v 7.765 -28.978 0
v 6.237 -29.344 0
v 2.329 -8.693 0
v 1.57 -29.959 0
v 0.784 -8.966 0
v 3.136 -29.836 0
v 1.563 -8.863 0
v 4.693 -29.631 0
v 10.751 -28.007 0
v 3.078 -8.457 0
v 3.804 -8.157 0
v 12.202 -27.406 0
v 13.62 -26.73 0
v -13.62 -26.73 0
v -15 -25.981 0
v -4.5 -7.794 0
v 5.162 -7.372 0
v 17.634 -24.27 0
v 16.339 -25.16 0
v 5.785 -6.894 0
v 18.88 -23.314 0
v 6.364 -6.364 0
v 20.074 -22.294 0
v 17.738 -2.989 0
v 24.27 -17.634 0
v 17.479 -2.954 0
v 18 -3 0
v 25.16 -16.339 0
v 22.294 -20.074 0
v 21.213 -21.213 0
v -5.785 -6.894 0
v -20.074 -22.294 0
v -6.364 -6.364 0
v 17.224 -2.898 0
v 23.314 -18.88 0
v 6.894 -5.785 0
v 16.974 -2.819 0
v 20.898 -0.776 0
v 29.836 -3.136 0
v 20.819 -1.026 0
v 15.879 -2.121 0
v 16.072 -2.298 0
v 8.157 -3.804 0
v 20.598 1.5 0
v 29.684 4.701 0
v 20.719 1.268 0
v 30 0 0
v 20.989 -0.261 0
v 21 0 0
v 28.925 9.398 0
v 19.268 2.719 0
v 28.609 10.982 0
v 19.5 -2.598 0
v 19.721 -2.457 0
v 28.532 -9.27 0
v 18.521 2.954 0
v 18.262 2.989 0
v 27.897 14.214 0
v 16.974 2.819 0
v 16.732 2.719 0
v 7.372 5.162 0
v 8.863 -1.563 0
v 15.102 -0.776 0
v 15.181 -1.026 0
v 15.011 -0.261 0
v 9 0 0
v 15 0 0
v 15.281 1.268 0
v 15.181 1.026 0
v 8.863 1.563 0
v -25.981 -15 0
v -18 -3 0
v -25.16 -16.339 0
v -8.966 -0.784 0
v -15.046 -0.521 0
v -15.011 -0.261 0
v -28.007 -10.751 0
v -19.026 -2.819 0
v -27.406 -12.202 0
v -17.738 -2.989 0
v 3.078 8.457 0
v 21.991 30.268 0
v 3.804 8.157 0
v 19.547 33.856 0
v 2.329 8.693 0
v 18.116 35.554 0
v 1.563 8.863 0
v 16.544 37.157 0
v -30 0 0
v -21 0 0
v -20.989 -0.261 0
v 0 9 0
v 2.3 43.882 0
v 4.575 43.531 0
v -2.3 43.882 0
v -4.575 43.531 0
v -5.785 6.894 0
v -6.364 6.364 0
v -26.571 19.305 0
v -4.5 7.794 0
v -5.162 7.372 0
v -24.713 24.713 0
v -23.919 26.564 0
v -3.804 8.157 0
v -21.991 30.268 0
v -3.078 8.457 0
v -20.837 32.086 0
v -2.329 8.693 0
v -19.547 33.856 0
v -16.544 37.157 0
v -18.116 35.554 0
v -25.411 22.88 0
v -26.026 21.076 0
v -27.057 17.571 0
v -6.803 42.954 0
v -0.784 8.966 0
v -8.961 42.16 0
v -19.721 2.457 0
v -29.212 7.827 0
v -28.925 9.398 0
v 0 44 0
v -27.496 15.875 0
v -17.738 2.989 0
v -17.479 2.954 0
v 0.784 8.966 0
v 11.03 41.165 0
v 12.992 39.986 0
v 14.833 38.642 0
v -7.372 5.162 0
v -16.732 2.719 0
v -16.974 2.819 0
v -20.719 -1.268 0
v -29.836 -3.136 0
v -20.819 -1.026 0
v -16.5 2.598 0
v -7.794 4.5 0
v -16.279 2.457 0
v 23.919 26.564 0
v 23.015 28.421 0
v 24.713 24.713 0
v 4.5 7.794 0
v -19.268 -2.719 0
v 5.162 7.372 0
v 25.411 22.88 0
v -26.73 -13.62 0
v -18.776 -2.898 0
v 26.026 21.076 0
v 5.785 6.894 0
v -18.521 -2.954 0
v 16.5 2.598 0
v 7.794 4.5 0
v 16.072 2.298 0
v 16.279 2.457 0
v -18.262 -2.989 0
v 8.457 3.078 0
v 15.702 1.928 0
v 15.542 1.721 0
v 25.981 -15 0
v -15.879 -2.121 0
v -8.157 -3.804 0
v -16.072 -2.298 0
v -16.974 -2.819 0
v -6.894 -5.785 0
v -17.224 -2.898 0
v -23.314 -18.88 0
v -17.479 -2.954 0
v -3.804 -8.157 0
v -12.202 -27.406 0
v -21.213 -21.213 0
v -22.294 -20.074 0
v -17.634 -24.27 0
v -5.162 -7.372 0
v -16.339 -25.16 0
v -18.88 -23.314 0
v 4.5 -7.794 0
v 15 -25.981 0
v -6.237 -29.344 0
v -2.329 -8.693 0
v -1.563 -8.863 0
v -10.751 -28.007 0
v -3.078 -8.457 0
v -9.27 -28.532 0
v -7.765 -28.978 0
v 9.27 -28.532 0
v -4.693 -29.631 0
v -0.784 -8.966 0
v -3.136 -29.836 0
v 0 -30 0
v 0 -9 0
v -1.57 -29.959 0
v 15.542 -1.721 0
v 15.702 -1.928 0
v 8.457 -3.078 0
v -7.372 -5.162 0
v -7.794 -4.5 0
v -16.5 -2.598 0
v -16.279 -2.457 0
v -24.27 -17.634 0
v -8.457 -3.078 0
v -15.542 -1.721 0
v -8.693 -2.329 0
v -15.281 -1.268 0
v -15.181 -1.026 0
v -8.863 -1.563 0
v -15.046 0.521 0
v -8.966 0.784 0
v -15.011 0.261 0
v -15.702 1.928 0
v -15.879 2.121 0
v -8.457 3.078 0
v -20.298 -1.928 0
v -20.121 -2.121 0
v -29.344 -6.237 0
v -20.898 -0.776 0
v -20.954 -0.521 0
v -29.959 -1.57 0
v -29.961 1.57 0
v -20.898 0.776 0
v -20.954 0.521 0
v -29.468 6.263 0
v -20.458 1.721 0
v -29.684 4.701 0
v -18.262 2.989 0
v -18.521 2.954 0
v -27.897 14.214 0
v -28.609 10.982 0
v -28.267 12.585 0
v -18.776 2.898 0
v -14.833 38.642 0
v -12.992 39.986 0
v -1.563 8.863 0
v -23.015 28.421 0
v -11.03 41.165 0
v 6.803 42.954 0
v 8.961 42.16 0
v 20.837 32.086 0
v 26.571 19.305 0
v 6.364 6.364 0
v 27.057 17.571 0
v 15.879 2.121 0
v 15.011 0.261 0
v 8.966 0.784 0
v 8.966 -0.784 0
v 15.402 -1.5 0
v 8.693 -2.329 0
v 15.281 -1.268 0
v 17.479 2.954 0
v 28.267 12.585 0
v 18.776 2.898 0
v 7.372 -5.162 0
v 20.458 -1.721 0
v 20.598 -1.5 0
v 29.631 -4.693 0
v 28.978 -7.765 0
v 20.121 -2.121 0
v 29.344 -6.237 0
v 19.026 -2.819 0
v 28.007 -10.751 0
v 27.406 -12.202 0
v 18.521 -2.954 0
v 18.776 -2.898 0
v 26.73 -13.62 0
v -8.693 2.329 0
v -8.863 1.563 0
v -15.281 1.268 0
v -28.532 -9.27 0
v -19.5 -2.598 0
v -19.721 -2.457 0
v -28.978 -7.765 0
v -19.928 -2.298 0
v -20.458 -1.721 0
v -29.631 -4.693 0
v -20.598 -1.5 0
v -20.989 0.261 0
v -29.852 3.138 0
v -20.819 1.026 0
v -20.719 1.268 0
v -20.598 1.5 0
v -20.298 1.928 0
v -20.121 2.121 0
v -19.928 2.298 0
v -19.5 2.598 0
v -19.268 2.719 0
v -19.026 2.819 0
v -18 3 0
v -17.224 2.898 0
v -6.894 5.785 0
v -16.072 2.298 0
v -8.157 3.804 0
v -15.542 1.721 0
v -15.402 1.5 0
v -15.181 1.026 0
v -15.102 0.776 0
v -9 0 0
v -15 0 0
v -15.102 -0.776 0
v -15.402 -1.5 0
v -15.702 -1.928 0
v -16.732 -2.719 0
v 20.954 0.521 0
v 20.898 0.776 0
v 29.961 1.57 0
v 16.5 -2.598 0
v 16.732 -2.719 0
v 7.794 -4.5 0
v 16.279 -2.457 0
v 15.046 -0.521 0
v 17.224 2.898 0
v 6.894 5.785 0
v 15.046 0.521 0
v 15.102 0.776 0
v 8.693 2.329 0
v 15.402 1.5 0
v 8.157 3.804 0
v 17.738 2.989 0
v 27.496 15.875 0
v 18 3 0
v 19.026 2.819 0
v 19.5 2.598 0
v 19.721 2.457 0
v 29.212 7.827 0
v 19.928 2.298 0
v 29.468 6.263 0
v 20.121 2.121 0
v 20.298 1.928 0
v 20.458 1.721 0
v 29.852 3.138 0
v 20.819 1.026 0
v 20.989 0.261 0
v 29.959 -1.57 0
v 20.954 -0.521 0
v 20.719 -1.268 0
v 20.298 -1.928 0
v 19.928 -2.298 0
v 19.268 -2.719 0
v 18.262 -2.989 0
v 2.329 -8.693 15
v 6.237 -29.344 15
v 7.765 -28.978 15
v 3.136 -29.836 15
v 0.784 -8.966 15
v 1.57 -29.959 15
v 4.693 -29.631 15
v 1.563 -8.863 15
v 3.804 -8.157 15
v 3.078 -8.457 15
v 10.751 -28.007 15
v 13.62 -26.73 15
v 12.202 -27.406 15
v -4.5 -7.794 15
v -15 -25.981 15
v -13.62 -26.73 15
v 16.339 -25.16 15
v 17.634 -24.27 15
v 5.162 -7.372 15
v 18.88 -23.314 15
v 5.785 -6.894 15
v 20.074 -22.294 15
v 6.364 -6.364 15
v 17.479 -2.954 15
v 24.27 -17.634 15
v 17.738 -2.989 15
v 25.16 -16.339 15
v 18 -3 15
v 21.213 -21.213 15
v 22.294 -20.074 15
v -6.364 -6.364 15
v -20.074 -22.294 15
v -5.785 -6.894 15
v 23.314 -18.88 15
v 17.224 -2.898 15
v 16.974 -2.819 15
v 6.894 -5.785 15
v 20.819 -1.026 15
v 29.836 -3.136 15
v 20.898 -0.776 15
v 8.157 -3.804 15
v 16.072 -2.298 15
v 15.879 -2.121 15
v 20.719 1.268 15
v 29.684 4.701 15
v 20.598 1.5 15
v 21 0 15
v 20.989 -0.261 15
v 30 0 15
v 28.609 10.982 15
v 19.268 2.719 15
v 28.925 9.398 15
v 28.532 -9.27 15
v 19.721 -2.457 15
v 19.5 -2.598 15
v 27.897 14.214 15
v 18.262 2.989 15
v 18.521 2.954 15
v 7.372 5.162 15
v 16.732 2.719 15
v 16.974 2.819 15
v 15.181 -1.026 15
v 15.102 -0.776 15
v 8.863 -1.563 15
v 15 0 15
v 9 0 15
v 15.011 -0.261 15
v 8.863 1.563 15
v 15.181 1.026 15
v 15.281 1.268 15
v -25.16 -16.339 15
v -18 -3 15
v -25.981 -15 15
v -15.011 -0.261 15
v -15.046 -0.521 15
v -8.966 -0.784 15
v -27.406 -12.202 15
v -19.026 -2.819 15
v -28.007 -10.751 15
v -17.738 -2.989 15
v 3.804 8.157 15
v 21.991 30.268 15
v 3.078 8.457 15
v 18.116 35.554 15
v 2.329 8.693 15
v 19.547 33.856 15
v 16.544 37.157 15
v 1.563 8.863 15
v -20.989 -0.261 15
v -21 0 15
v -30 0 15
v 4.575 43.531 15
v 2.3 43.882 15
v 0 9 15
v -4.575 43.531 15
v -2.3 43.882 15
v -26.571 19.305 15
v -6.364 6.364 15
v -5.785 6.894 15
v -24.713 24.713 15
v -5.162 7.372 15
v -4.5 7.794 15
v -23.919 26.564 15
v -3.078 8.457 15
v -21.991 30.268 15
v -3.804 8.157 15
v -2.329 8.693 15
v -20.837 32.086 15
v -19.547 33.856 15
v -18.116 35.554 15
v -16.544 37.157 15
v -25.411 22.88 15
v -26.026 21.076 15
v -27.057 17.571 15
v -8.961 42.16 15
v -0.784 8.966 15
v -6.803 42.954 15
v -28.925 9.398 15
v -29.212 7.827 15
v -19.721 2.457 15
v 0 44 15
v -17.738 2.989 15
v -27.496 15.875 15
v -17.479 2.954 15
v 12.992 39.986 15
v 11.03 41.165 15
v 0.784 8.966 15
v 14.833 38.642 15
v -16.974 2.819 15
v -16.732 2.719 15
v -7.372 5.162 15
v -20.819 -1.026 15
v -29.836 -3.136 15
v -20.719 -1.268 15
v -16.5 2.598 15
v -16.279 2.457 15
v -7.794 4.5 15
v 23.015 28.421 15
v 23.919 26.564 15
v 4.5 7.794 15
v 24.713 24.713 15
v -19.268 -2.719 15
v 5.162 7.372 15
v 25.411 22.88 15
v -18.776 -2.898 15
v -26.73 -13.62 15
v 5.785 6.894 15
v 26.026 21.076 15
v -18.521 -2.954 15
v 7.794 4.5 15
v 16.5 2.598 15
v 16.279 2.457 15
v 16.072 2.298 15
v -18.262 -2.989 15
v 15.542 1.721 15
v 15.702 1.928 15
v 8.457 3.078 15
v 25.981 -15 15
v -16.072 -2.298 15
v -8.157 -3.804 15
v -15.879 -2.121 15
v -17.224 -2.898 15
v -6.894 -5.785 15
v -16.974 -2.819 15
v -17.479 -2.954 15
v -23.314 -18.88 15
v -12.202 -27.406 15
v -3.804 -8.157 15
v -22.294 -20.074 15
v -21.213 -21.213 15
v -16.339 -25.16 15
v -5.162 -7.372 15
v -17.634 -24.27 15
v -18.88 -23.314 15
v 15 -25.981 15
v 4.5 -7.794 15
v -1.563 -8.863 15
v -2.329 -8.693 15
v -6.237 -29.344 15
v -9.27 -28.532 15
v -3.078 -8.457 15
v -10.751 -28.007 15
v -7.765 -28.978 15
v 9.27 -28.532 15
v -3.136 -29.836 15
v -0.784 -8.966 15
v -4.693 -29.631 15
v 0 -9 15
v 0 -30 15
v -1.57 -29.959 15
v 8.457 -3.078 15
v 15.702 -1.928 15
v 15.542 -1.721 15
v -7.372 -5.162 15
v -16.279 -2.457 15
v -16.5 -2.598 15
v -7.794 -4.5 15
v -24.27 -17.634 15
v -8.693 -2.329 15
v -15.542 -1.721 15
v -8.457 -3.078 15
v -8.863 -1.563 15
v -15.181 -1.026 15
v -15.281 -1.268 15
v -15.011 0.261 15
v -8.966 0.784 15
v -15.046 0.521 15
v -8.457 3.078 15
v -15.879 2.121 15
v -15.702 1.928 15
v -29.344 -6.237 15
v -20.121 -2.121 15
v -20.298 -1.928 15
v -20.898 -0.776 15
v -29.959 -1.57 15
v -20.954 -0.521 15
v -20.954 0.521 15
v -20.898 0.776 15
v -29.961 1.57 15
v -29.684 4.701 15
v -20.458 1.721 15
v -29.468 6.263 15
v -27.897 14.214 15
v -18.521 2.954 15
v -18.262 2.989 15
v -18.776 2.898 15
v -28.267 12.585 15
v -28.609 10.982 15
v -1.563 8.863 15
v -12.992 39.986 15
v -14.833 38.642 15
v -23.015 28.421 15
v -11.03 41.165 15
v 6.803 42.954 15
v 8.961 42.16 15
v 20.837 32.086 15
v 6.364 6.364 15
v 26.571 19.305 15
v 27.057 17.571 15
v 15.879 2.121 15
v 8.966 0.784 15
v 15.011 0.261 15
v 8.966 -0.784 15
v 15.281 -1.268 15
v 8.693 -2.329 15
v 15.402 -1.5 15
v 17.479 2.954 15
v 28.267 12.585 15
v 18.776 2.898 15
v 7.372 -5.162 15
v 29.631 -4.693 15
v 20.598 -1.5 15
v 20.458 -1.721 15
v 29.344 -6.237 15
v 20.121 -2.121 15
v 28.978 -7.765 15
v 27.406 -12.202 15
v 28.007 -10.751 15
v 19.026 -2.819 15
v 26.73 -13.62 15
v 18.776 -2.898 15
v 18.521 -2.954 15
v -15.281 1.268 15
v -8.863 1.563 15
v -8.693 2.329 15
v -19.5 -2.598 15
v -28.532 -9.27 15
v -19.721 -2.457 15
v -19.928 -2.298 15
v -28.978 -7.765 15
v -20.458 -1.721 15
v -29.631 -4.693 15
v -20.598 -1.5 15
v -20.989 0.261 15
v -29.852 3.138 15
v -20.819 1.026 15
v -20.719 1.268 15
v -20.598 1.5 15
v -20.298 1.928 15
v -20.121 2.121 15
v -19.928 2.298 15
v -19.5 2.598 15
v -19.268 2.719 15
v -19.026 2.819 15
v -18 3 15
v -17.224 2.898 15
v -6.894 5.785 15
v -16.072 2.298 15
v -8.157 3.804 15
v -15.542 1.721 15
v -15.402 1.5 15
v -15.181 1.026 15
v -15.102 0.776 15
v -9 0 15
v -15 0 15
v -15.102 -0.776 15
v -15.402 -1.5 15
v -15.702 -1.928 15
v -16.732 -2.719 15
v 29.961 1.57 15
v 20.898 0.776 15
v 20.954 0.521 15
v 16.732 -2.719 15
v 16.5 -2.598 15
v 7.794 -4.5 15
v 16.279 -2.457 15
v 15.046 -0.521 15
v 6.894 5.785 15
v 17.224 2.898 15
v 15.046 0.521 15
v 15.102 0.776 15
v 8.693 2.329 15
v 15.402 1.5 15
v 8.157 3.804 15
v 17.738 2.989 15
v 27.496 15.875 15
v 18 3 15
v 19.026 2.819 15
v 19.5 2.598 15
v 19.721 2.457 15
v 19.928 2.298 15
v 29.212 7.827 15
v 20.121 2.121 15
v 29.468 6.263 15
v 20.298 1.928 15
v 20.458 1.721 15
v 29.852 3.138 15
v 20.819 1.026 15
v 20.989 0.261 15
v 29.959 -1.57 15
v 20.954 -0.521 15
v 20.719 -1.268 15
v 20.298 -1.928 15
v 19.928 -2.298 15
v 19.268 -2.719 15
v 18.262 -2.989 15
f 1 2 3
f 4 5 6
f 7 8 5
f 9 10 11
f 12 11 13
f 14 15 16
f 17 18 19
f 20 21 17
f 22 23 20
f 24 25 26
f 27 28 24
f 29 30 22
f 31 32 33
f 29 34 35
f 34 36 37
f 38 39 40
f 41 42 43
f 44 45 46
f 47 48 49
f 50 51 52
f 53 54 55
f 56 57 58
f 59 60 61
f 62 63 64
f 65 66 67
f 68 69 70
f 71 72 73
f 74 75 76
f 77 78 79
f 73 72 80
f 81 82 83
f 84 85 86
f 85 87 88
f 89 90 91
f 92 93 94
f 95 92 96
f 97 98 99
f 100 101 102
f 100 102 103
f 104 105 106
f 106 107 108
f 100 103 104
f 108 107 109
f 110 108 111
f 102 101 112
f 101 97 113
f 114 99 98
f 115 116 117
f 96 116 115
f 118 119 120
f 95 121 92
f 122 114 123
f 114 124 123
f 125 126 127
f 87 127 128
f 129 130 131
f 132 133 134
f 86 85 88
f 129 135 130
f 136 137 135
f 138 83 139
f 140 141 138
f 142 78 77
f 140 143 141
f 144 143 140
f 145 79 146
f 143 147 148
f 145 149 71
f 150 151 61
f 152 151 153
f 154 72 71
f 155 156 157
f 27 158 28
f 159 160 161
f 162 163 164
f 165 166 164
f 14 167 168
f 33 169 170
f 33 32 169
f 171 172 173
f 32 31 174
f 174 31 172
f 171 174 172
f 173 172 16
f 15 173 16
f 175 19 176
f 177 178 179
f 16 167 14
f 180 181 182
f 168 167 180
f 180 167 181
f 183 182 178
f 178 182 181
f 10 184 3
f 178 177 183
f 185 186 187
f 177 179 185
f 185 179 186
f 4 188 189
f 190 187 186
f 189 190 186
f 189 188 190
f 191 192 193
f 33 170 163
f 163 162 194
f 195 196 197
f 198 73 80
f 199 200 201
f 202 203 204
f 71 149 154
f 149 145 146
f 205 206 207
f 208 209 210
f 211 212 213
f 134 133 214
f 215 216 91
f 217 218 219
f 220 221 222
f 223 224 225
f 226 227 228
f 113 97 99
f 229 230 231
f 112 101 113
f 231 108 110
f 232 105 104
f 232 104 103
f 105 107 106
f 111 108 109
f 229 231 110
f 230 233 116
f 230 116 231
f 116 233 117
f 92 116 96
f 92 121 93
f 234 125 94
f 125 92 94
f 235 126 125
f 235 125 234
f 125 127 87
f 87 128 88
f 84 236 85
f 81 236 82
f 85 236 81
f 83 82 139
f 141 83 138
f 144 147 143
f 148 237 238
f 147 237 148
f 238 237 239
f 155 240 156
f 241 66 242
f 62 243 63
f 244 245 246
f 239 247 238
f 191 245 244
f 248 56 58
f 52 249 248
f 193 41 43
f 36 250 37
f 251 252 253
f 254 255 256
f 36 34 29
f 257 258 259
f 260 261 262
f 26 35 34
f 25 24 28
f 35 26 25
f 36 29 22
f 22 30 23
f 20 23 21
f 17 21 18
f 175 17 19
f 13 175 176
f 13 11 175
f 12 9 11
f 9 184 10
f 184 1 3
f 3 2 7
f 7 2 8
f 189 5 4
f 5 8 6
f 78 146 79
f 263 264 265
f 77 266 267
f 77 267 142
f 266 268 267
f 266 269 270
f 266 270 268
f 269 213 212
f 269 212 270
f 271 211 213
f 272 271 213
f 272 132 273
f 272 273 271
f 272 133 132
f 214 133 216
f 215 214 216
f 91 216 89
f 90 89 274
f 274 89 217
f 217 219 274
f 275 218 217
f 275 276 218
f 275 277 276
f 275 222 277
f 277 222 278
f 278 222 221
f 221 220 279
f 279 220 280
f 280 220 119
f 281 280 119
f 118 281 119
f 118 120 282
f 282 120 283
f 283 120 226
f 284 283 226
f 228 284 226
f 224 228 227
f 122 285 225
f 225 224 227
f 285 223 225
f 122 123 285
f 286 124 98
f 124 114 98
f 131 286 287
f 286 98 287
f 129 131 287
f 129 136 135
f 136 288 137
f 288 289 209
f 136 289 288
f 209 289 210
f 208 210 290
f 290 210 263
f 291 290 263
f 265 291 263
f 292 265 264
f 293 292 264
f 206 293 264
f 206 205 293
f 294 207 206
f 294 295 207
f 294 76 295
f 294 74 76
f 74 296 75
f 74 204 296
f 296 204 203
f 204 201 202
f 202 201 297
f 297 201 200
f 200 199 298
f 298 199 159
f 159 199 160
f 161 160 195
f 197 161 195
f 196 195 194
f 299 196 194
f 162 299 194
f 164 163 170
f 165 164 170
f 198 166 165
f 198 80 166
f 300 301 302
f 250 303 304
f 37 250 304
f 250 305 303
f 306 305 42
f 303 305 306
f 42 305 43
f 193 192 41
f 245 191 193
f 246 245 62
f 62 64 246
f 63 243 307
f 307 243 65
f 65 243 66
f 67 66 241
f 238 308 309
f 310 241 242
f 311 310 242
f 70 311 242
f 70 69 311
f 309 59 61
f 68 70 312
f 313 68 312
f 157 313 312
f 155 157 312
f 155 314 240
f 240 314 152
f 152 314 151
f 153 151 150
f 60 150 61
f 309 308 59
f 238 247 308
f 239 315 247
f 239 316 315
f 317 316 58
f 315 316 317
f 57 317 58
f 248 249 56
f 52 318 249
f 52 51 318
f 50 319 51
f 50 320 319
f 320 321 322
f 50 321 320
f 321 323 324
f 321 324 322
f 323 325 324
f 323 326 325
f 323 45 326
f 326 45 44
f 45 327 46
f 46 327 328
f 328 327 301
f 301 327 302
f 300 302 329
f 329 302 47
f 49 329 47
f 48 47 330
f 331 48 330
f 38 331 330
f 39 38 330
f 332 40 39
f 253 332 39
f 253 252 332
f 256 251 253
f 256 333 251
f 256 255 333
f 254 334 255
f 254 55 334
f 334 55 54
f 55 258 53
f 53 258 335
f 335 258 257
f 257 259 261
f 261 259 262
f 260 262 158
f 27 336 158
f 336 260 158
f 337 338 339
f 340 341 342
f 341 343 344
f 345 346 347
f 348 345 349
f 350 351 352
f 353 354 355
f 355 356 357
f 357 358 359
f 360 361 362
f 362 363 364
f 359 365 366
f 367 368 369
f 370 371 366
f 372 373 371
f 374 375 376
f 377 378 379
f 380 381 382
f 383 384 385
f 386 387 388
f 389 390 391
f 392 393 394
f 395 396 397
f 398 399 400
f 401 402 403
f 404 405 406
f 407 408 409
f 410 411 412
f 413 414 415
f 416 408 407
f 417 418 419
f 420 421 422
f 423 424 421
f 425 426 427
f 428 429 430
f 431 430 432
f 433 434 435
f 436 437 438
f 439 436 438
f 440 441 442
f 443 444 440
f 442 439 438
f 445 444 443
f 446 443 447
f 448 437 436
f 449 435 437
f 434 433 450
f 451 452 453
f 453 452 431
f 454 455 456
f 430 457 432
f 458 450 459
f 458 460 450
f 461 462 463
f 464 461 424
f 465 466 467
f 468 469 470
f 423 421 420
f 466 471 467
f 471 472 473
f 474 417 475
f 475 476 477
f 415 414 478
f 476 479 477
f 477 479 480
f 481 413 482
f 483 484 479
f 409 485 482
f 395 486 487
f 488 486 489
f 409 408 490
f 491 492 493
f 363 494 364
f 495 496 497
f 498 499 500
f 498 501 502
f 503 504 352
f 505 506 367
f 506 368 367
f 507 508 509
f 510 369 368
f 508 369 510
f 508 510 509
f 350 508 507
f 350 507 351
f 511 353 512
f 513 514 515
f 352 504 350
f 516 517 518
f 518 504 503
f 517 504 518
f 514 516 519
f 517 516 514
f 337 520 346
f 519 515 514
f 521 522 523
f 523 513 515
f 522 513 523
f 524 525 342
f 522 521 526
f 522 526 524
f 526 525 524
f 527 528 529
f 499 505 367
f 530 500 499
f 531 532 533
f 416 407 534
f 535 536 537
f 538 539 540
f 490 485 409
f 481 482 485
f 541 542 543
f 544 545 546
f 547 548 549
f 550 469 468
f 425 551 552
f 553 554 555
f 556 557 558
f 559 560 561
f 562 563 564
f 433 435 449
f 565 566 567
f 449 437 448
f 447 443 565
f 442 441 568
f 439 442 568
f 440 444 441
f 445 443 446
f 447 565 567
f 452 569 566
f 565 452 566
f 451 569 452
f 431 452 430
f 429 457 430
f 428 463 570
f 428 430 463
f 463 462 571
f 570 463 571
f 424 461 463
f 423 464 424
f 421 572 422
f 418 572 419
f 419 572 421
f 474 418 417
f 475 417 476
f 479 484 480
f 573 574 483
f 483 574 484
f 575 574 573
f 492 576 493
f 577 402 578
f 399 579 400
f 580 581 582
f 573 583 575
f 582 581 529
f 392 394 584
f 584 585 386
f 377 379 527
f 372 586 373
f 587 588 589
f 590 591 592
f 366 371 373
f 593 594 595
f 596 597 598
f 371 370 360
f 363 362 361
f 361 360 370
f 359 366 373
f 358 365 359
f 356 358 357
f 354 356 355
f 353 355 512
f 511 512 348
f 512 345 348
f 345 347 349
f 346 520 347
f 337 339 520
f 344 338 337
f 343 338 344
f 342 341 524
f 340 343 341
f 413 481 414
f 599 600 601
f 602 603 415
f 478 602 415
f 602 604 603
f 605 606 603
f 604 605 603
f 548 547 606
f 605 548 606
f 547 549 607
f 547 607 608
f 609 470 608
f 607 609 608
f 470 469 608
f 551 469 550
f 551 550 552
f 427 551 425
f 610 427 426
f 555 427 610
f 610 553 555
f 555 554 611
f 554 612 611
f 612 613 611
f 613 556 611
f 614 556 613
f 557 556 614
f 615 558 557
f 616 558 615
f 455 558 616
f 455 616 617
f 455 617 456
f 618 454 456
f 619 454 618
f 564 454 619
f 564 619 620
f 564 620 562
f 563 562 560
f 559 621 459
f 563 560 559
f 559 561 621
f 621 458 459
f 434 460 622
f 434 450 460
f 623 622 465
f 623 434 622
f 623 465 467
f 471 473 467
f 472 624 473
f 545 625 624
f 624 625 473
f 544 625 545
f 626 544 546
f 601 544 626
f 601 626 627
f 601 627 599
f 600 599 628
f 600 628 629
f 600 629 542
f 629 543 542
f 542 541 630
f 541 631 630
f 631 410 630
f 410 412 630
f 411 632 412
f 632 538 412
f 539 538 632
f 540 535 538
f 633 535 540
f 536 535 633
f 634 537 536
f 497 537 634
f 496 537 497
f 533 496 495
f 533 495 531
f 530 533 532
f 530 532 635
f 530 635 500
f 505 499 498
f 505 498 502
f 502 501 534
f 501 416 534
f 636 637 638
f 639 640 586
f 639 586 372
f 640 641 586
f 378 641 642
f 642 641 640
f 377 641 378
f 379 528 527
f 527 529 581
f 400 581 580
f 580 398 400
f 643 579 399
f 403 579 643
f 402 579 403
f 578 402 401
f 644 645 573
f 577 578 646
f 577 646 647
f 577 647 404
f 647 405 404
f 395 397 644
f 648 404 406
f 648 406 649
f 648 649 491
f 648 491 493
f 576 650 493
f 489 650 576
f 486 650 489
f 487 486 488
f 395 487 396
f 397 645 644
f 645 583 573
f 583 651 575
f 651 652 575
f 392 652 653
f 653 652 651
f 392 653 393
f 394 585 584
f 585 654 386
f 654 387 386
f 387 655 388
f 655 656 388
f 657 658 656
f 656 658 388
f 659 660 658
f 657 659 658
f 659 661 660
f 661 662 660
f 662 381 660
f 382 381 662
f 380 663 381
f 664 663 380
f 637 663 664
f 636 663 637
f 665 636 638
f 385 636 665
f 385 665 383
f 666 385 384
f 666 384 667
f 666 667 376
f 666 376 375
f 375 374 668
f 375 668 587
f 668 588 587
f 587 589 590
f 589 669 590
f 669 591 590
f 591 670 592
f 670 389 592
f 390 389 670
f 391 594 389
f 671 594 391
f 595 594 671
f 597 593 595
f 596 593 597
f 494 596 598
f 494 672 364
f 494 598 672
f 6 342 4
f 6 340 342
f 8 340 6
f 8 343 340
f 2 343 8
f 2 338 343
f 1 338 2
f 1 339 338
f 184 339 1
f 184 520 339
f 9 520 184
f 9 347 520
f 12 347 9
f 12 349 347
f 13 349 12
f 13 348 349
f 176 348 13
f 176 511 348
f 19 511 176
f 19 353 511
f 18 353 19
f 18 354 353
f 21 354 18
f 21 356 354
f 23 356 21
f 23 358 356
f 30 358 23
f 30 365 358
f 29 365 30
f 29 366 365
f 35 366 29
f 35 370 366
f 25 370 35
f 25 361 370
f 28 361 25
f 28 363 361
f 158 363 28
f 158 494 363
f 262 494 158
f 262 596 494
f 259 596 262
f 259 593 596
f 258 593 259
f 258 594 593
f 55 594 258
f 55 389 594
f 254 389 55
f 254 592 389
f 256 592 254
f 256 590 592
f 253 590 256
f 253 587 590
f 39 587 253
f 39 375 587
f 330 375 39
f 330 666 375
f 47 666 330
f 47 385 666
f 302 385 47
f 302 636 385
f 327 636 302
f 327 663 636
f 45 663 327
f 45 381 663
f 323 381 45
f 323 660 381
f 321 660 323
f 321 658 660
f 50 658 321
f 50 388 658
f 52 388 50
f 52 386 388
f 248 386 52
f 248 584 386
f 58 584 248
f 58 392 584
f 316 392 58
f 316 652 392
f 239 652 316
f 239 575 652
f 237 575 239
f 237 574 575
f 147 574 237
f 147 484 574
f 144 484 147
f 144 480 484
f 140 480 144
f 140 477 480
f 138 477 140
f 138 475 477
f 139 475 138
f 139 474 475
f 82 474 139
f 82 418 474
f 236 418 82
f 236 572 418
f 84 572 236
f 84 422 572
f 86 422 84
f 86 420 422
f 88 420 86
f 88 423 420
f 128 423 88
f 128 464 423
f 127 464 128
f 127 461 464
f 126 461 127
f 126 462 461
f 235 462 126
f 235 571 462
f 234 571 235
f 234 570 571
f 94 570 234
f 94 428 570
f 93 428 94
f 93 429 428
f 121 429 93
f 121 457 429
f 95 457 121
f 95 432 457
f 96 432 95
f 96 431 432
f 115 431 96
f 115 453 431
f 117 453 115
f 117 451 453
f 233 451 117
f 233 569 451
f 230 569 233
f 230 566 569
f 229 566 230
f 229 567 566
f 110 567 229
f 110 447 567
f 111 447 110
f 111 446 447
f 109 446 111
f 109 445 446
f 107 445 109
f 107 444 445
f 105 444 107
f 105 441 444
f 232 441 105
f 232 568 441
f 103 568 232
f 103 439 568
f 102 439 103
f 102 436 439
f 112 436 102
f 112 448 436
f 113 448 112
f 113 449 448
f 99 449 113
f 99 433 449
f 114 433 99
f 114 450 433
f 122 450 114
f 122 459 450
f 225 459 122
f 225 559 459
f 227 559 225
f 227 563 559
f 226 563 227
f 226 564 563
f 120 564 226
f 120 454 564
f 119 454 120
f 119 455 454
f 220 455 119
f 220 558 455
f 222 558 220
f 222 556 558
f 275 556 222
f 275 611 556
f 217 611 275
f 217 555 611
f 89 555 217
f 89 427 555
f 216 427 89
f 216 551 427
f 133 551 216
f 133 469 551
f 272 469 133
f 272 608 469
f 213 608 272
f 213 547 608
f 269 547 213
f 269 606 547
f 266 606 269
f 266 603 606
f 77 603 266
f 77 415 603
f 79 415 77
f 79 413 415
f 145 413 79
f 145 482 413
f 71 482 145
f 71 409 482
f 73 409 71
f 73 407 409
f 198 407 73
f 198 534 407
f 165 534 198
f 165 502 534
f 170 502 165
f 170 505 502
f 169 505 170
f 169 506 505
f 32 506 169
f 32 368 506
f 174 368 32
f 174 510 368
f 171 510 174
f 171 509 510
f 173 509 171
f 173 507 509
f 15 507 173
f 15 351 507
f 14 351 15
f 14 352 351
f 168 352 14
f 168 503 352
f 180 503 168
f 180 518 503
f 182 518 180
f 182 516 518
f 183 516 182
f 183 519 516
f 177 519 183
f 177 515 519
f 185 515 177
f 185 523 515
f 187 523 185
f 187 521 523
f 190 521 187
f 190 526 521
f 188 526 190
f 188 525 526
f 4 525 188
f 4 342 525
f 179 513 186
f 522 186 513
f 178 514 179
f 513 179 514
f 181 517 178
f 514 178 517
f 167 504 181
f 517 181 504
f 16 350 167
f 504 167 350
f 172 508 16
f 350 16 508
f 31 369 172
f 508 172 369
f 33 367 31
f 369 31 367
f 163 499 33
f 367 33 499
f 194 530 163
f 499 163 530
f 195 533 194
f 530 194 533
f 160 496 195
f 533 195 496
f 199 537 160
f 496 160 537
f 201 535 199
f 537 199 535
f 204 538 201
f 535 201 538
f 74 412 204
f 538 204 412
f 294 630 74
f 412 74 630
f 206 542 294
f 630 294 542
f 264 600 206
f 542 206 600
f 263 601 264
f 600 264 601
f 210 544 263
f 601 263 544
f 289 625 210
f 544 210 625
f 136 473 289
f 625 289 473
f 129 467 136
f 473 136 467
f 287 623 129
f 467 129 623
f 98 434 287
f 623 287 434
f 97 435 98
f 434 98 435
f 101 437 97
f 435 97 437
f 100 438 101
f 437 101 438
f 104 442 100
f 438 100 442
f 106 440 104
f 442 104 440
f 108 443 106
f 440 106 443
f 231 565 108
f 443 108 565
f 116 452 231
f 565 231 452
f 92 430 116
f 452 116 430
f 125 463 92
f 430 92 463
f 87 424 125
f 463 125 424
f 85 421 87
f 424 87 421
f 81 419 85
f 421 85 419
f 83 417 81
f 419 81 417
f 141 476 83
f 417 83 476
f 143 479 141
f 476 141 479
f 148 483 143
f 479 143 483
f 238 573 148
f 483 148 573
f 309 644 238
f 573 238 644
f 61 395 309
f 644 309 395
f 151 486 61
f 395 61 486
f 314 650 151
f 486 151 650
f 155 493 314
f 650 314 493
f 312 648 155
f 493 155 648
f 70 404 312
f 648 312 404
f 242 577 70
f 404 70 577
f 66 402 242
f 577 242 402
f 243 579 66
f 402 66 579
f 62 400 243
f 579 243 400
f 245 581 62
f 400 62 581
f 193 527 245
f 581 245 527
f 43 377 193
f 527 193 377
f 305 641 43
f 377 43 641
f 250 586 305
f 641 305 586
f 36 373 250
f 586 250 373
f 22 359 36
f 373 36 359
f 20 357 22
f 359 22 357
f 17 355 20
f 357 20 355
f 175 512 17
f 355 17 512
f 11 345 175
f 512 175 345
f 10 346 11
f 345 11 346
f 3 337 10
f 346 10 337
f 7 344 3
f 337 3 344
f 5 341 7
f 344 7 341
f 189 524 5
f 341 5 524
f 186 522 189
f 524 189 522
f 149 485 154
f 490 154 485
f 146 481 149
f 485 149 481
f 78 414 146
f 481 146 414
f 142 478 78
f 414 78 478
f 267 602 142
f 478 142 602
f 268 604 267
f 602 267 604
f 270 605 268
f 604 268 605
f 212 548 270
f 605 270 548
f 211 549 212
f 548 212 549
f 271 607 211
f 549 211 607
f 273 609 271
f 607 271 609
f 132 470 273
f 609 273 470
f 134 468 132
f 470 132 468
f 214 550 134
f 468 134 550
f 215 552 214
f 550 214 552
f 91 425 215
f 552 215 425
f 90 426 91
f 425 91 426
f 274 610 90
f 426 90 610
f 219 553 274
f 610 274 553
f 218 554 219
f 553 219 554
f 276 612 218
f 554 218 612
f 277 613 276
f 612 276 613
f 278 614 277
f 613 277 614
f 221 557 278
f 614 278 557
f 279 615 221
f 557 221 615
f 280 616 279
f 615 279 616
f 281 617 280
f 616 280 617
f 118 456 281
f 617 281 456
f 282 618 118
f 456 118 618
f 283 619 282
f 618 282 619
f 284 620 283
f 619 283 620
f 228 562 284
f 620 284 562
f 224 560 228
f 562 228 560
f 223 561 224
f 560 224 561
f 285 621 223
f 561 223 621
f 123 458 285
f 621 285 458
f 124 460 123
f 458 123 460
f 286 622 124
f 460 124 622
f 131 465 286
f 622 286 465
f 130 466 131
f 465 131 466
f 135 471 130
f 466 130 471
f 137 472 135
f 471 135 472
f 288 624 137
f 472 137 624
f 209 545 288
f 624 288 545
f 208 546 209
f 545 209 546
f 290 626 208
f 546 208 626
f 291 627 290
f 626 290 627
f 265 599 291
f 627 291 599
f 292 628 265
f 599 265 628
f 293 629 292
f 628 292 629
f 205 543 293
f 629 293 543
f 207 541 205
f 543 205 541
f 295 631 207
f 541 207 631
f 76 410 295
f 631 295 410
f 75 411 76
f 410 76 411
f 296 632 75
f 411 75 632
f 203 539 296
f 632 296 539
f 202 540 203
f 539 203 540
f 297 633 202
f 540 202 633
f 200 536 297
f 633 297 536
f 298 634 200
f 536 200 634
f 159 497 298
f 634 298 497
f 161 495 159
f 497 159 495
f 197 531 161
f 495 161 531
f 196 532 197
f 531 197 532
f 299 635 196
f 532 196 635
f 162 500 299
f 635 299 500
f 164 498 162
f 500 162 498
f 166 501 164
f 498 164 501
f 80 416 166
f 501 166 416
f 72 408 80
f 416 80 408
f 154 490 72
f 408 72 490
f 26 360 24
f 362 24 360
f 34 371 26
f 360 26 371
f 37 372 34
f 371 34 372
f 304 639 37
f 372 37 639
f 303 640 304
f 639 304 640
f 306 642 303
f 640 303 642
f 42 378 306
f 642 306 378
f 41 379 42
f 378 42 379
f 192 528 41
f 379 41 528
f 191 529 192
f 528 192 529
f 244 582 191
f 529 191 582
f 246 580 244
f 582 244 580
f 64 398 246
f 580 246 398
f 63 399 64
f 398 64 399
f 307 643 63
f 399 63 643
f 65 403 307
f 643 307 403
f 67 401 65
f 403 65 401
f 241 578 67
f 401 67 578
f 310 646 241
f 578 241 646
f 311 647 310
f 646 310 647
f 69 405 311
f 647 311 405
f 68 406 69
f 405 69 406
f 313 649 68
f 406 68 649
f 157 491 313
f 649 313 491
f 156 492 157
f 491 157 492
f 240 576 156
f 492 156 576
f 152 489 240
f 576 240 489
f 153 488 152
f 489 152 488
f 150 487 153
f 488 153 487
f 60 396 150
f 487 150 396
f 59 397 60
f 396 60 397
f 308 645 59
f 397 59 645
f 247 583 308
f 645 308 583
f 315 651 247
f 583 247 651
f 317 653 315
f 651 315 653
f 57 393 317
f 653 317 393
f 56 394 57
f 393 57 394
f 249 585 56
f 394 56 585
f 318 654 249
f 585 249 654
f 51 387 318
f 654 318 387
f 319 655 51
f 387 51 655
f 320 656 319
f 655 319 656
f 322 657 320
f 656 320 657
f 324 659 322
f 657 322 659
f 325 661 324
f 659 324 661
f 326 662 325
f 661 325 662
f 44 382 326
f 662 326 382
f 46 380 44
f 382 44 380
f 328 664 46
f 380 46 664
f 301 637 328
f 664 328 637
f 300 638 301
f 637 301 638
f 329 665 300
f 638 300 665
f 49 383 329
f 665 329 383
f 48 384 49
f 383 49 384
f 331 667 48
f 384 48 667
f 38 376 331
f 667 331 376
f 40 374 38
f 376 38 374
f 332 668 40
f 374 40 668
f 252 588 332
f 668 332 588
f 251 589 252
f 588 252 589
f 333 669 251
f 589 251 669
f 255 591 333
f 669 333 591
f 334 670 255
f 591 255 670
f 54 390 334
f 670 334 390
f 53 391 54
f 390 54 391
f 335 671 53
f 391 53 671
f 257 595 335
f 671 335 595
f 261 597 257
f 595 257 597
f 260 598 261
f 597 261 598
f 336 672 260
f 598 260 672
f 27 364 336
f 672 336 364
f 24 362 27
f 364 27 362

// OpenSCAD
// Generated by DXF to 3D (https://github.com) - open in OpenSCAD
depth = 15;
scale_factor = 1;

scale([scale_factor, scale_factor, 1])
union() {
  linear_extrude(height = depth)
    polygon(points = [[30,0],[29.9609,1.5702],[29.8516,3.1375],[29.6836,4.7014],[29.4675,6.2635],[29.2122,7.8274],[28.9246,9.3982],[28.609,10.9819],[28.267,12.5853],[27.8974,14.2144],[27.4963,15.875],[27.057,17.571],[26.5706,19.3047],[26.0261,21.0755],[25.4113,22.8805],[24.7132,24.7132],[23.9186,26.5643],[23.0149,28.4211],[21.9909,30.2678],[20.8371,32.0863],[19.5466,33.8558],[18.1156,35.5539],[16.5435,37.1574],[14.8334,38.6424],[12.9921,39.9856],[11.0301,41.165],[8.9614,42.1602],[6.8032,42.9538],[4.5753,43.5314],[2.2998,43.8823],[0,44],[-2.2998,43.8823],[-4.5753,43.5314],[-6.8032,42.9538],[-8.9614,42.1602],[-11.0301,41.165],[-12.9921,39.9856],[-14.8334,38.6424],[-16.5435,37.1574],[-18.1156,35.5539],[-19.5466,33.8558],[-20.8371,32.0863],[-21.9909,30.2678],[-23.0149,28.4211],[-23.9186,26.5643],[-24.7132,24.7132],[-25.4113,22.8805],[-26.0261,21.0755],[-26.5706,19.3047],[-27.057,17.571],[-27.4963,15.875],[-27.8974,14.2144],[-28.267,12.5853],[-28.609,10.9819],[-28.9246,9.3982],[-29.2122,7.8274],[-29.4675,6.2635],[-29.6836,4.7014],[-29.8516,3.1375],[-29.9609,1.5702],[-30,0],[-29.9589,-1.5701],[-29.8357,-3.1359],[-29.6307,-4.693],[-29.3444,-6.2374],[-28.9778,-7.7646],[-28.5317,-9.2705],[-28.0074,-10.751],[-27.4064,-12.2021],[-26.7302,-13.6197],[-25.9808,-15],[-25.1601,-16.3392],[-24.2705,-17.6336],[-23.3144,-18.8796],[-22.2943,-20.0739],[-21.2132,-21.2132],[-20.0739,-22.2943],[-18.8796,-23.3144],[-17.6336,-24.2705],[-16.3392,-25.1601],[-15,-25.9808],[-13.6197,-26.7302],[-12.2021,-27.4064],[-10.751,-28.0074],[-9.2705,-28.5317],[-7.7646,-28.9778],[-6.2374,-29.3444],[-4.693,-29.6307],[-3.1359,-29.8357],[-1.5701,-29.9589],[0,-30],[1.5701,-29.9589],[3.1359,-29.8357],[4.693,-29.6307],[6.2374,-29.3444],[7.7646,-28.9778],[9.2705,-28.5317],[10.751,-28.0074],[12.2021,-27.4064],[13.6197,-26.7302],[15,-25.9808],[16.3392,-25.1601],[17.6336,-24.2705],[18.8796,-23.3144],[20.0739,-22.2943],[21.2132,-21.2132],[22.2943,-20.0739],[23.3144,-18.8796],[24.2705,-17.6336],[25.1601,-16.3392],[25.9808,-15],[26.7302,-13.6197],[27.4064,-12.2021],[28.0074,-10.751],[28.5317,-9.2705],[28.9778,-7.7646],[29.3444,-6.2374],[29.6307,-4.693],[29.8357,-3.1359],[29.9589,-1.5701],[9,0],[8.9658,0.7844],[8.8633,1.5628],[8.6933,2.3294],[8.4572,3.0782],[8.1568,3.8036],[7.7942,4.5],[7.3724,5.1622],[6.8944,5.7851],[6.364,6.364],[5.7851,6.8944],[5.1622,7.3724],[4.5,7.7942],[3.8036,8.1568],[3.0782,8.4572],[2.3294,8.6933],[1.5628,8.8633],[0.7844,8.9658],[0,9],[-0.7844,8.9658],[-1.5628,8.8633],[-2.3294,8.6933],[-3.0782,8.4572],[-3.8036,8.1568],[-4.5,7.7942],[-5.1622,7.3724],[-5.7851,6.8944],[-6.364,6.364],[-6.8944,5.7851],[-7.3724,5.1622],[-7.7942,4.5],[-8.1568,3.8036],[-8.4572,3.0782],[-8.6933,2.3294],[-8.8633,1.5628],[-8.9658,0.7844],[-9,0],[-8.9658,-0.7844],[-8.8633,-1.5628],[-8.6933,-2.3294],[-8.4572,-3.0782],[-8.1568,-3.8036],[-7.7942,-4.5],[-7.3724,-5.1622],[-6.8944,-5.7851],[-6.364,-6.364],[-5.7851,-6.8944],[-5.1622,-7.3724],[-4.5,-7.7942],[-3.8036,-8.1568],[-3.0782,-8.4572],[-2.3294,-8.6933],[-1.5628,-8.8633],[-0.7844,-8.9658],[0,-9],[0.7844,-8.9658],[1.5628,-8.8633],[2.3294,-8.6933],[3.0782,-8.4572],[3.8036,-8.1568],[4.5,-7.7942],[5.1622,-7.3724],[5.7851,-6.8944],[6.364,-6.364],[6.8944,-5.7851],[7.3724,-5.1622],[7.7942,-4.5],[8.1568,-3.8036],[8.4572,-3.0782],[8.6933,-2.3294],[8.8633,-1.5628],[8.9658,-0.7844],[-15,0],[-15.0114,0.2615],[-15.0456,0.5209],[-15.1022,0.7765],[-15.1809,1.0261],[-15.2811,1.2679],[-15.4019,1.5],[-15.5425,1.7207],[-15.7019,1.9284],[-15.8787,2.1213],[-16.0716,2.2981],[-16.2793,2.4575],[-16.5,2.5981],[-16.7321,2.7189],[-16.9739,2.8191],[-17.2235,2.8978],[-17.4791,2.9544],[-17.7385,2.9886],[-18,3],[-18.2615,2.9886],[-18.5209,2.9544],[-18.7765,2.8978],[-19.0261,2.8191],[-19.2679,2.7189],[-19.5,2.5981],[-19.7207,2.4575],[-19.9284,2.2981],[-20.1213,2.1213],[-20.2981,1.9284],[-20.4575,1.7207],[-20.5981,1.5],[-20.7189,1.2679],[-20.8191,1.0261],[-20.8978,0.7765],[-20.9544,0.5209],[-20.9886,0.2615],[-21,0],[-20.9886,-0.2615],[-20.9544,-0.5209],[-20.8978,-0.7765],[-20.8191,-1.0261],[-20.7189,-1.2679],[-20.5981,-1.5],[-20.4575,-1.7207],[-20.2981,-1.9284],[-20.1213,-2.1213],[-19.9284,-2.2981],[-19.7207,-2.4575],[-19.5,-2.5981],[-19.2679,-2.7189],[-19.0261,-2.8191],[-18.7765,-2.8978],[-18.5209,-2.9544],[-18.2615,-2.9886],[-18,-3],[-17.7385,-2.9886],[-17.4791,-2.9544],[-17.2235,-2.8978],[-16.9739,-2.8191],[-16.7321,-2.7189],[-16.5,-2.5981],[-16.2793,-2.4575],[-16.0716,-2.2981],[-15.8787,-2.1213],[-15.7019,-1.9284],[-15.5425,-1.7207],[-15.4019,-1.5],[-15.2811,-1.2679],[-15.1809,-1.0261],[-15.1022,-0.7765],[-15.0456,-0.5209],[-15.0114,-0.2615],[21,0],[20.9886,0.2615],[20.9544,0.5209],[20.8978,0.7765],[20.8191,1.0261],[20.7189,1.2679],[20.5981,1.5],[20.4575,1.7207],[20.2981,1.9284],[20.1213,2.1213],[19.9284,2.2981],[19.7207,2.4575],[19.5,2.5981],[19.2679,2.7189],[19.0261,2.8191],[18.7765,2.8978],[18.5209,2.9544],[18.2615,2.9886],[18,3],[17.7385,2.9886],[17.4791,2.9544],[17.2235,2.8978],[16.9739,2.8191],[16.7321,2.7189],[16.5,2.5981],[16.2793,2.4575],[16.0716,2.2981],[15.8787,2.1213],[15.7019,1.9284],[15.5425,1.7207],[15.4019,1.5],[15.2811,1.2679],[15.1809,1.0261],[15.1022,0.7765],[15.0456,0.5209],[15.0114,0.2615],[15,0],[15.0114,-0.2615],[15.0456,-0.5209],[15.1022,-0.7765],[15.1809,-1.0261],[15.2811,-1.2679],[15.4019,-1.5],[15.5425,-1.7207],[15.7019,-1.9284],[15.8787,-2.1213],[16.0716,-2.2981],[16.2793,-2.4575],[16.5,-2.5981],[16.7321,-2.7189],[16.9739,-2.8191],[17.2235,-2.8978],[17.4791,-2.9544],[17.7385,-2.9886],[18,-3],[18.2615,-2.9886],[18.5209,-2.9544],[18.7765,-2.8978],[19.0261,-2.8191],[19.2679,-2.7189],[19.5,-2.5981],[19.7207,-2.4575],[19.9284,-2.2981],[20.1213,-2.1213],[20.2981,-1.9284],[20.4575,-1.7207],[20.5981,-1.5],[20.7189,-1.2679],[20.8191,-1.0261],[20.8978,-0.7765],[20.9544,-0.5209],[20.9886,-0.2615]],
      paths = [[0,1,2,3,4,5,6,7,8,9,10,11,12,13,14,15,16,17,18,19,20,21,22,23,24,25,26,27,28,29,30,31,32,33,34,35,36,37,38,39,40,41,42,43,44,45,46,47,48,49,50,51,52,53,54,55,56,57,58,59,60,61,62,63,64,65,66,67,68,69,70,71,72,73,74,75,76,77,78,79,80,81,82,83,84,85,86,87,88,89,90,91,92,93,94,95,96,97,98,99,100,101,102,103,104,105,106,107,108,109,110,111,112,113,114,115,116,117,118,119],[120,121,122,123,124,125,126,127,128,129,130,131,132,133,134,135,136,137,138,139,140,141,142,143,144,145,146,147,148,149,150,151,152,153,154,155,156,157,158,159,160,161,162,163,164,165,166,167,168,169,170,171,172,173,174,175,176,177,178,179,180,181,182,183,184,185,186,187,188,189,190,191],[192,193,194,195,196,197,198,199,200,201,202,203,204,205,206,207,208,209,210,211,212,213,214,215,216,217,218,219,220,221,222,223,224,225,226,227,228,229,230,231,232,233,234,235,236,237,238,239,240,241,242,243,244,245,246,247,248,249,250,251,252,253,254,255,256,257,258,259,260,261,262,263],[264,265,266,267,268,269,270,271,272,273,274,275,276,277,278,279,280,281,282,283,284,285,286,287,288,289,290,291,292,293,294,295,296,297,298,299,300,301,302,303,304,305,306,307,308,309,310,311,312,313,314,315,316,317,318,319,320,321,322,323,324,325,326,327,328,329,330,331,332,333,334,335]]);
}
